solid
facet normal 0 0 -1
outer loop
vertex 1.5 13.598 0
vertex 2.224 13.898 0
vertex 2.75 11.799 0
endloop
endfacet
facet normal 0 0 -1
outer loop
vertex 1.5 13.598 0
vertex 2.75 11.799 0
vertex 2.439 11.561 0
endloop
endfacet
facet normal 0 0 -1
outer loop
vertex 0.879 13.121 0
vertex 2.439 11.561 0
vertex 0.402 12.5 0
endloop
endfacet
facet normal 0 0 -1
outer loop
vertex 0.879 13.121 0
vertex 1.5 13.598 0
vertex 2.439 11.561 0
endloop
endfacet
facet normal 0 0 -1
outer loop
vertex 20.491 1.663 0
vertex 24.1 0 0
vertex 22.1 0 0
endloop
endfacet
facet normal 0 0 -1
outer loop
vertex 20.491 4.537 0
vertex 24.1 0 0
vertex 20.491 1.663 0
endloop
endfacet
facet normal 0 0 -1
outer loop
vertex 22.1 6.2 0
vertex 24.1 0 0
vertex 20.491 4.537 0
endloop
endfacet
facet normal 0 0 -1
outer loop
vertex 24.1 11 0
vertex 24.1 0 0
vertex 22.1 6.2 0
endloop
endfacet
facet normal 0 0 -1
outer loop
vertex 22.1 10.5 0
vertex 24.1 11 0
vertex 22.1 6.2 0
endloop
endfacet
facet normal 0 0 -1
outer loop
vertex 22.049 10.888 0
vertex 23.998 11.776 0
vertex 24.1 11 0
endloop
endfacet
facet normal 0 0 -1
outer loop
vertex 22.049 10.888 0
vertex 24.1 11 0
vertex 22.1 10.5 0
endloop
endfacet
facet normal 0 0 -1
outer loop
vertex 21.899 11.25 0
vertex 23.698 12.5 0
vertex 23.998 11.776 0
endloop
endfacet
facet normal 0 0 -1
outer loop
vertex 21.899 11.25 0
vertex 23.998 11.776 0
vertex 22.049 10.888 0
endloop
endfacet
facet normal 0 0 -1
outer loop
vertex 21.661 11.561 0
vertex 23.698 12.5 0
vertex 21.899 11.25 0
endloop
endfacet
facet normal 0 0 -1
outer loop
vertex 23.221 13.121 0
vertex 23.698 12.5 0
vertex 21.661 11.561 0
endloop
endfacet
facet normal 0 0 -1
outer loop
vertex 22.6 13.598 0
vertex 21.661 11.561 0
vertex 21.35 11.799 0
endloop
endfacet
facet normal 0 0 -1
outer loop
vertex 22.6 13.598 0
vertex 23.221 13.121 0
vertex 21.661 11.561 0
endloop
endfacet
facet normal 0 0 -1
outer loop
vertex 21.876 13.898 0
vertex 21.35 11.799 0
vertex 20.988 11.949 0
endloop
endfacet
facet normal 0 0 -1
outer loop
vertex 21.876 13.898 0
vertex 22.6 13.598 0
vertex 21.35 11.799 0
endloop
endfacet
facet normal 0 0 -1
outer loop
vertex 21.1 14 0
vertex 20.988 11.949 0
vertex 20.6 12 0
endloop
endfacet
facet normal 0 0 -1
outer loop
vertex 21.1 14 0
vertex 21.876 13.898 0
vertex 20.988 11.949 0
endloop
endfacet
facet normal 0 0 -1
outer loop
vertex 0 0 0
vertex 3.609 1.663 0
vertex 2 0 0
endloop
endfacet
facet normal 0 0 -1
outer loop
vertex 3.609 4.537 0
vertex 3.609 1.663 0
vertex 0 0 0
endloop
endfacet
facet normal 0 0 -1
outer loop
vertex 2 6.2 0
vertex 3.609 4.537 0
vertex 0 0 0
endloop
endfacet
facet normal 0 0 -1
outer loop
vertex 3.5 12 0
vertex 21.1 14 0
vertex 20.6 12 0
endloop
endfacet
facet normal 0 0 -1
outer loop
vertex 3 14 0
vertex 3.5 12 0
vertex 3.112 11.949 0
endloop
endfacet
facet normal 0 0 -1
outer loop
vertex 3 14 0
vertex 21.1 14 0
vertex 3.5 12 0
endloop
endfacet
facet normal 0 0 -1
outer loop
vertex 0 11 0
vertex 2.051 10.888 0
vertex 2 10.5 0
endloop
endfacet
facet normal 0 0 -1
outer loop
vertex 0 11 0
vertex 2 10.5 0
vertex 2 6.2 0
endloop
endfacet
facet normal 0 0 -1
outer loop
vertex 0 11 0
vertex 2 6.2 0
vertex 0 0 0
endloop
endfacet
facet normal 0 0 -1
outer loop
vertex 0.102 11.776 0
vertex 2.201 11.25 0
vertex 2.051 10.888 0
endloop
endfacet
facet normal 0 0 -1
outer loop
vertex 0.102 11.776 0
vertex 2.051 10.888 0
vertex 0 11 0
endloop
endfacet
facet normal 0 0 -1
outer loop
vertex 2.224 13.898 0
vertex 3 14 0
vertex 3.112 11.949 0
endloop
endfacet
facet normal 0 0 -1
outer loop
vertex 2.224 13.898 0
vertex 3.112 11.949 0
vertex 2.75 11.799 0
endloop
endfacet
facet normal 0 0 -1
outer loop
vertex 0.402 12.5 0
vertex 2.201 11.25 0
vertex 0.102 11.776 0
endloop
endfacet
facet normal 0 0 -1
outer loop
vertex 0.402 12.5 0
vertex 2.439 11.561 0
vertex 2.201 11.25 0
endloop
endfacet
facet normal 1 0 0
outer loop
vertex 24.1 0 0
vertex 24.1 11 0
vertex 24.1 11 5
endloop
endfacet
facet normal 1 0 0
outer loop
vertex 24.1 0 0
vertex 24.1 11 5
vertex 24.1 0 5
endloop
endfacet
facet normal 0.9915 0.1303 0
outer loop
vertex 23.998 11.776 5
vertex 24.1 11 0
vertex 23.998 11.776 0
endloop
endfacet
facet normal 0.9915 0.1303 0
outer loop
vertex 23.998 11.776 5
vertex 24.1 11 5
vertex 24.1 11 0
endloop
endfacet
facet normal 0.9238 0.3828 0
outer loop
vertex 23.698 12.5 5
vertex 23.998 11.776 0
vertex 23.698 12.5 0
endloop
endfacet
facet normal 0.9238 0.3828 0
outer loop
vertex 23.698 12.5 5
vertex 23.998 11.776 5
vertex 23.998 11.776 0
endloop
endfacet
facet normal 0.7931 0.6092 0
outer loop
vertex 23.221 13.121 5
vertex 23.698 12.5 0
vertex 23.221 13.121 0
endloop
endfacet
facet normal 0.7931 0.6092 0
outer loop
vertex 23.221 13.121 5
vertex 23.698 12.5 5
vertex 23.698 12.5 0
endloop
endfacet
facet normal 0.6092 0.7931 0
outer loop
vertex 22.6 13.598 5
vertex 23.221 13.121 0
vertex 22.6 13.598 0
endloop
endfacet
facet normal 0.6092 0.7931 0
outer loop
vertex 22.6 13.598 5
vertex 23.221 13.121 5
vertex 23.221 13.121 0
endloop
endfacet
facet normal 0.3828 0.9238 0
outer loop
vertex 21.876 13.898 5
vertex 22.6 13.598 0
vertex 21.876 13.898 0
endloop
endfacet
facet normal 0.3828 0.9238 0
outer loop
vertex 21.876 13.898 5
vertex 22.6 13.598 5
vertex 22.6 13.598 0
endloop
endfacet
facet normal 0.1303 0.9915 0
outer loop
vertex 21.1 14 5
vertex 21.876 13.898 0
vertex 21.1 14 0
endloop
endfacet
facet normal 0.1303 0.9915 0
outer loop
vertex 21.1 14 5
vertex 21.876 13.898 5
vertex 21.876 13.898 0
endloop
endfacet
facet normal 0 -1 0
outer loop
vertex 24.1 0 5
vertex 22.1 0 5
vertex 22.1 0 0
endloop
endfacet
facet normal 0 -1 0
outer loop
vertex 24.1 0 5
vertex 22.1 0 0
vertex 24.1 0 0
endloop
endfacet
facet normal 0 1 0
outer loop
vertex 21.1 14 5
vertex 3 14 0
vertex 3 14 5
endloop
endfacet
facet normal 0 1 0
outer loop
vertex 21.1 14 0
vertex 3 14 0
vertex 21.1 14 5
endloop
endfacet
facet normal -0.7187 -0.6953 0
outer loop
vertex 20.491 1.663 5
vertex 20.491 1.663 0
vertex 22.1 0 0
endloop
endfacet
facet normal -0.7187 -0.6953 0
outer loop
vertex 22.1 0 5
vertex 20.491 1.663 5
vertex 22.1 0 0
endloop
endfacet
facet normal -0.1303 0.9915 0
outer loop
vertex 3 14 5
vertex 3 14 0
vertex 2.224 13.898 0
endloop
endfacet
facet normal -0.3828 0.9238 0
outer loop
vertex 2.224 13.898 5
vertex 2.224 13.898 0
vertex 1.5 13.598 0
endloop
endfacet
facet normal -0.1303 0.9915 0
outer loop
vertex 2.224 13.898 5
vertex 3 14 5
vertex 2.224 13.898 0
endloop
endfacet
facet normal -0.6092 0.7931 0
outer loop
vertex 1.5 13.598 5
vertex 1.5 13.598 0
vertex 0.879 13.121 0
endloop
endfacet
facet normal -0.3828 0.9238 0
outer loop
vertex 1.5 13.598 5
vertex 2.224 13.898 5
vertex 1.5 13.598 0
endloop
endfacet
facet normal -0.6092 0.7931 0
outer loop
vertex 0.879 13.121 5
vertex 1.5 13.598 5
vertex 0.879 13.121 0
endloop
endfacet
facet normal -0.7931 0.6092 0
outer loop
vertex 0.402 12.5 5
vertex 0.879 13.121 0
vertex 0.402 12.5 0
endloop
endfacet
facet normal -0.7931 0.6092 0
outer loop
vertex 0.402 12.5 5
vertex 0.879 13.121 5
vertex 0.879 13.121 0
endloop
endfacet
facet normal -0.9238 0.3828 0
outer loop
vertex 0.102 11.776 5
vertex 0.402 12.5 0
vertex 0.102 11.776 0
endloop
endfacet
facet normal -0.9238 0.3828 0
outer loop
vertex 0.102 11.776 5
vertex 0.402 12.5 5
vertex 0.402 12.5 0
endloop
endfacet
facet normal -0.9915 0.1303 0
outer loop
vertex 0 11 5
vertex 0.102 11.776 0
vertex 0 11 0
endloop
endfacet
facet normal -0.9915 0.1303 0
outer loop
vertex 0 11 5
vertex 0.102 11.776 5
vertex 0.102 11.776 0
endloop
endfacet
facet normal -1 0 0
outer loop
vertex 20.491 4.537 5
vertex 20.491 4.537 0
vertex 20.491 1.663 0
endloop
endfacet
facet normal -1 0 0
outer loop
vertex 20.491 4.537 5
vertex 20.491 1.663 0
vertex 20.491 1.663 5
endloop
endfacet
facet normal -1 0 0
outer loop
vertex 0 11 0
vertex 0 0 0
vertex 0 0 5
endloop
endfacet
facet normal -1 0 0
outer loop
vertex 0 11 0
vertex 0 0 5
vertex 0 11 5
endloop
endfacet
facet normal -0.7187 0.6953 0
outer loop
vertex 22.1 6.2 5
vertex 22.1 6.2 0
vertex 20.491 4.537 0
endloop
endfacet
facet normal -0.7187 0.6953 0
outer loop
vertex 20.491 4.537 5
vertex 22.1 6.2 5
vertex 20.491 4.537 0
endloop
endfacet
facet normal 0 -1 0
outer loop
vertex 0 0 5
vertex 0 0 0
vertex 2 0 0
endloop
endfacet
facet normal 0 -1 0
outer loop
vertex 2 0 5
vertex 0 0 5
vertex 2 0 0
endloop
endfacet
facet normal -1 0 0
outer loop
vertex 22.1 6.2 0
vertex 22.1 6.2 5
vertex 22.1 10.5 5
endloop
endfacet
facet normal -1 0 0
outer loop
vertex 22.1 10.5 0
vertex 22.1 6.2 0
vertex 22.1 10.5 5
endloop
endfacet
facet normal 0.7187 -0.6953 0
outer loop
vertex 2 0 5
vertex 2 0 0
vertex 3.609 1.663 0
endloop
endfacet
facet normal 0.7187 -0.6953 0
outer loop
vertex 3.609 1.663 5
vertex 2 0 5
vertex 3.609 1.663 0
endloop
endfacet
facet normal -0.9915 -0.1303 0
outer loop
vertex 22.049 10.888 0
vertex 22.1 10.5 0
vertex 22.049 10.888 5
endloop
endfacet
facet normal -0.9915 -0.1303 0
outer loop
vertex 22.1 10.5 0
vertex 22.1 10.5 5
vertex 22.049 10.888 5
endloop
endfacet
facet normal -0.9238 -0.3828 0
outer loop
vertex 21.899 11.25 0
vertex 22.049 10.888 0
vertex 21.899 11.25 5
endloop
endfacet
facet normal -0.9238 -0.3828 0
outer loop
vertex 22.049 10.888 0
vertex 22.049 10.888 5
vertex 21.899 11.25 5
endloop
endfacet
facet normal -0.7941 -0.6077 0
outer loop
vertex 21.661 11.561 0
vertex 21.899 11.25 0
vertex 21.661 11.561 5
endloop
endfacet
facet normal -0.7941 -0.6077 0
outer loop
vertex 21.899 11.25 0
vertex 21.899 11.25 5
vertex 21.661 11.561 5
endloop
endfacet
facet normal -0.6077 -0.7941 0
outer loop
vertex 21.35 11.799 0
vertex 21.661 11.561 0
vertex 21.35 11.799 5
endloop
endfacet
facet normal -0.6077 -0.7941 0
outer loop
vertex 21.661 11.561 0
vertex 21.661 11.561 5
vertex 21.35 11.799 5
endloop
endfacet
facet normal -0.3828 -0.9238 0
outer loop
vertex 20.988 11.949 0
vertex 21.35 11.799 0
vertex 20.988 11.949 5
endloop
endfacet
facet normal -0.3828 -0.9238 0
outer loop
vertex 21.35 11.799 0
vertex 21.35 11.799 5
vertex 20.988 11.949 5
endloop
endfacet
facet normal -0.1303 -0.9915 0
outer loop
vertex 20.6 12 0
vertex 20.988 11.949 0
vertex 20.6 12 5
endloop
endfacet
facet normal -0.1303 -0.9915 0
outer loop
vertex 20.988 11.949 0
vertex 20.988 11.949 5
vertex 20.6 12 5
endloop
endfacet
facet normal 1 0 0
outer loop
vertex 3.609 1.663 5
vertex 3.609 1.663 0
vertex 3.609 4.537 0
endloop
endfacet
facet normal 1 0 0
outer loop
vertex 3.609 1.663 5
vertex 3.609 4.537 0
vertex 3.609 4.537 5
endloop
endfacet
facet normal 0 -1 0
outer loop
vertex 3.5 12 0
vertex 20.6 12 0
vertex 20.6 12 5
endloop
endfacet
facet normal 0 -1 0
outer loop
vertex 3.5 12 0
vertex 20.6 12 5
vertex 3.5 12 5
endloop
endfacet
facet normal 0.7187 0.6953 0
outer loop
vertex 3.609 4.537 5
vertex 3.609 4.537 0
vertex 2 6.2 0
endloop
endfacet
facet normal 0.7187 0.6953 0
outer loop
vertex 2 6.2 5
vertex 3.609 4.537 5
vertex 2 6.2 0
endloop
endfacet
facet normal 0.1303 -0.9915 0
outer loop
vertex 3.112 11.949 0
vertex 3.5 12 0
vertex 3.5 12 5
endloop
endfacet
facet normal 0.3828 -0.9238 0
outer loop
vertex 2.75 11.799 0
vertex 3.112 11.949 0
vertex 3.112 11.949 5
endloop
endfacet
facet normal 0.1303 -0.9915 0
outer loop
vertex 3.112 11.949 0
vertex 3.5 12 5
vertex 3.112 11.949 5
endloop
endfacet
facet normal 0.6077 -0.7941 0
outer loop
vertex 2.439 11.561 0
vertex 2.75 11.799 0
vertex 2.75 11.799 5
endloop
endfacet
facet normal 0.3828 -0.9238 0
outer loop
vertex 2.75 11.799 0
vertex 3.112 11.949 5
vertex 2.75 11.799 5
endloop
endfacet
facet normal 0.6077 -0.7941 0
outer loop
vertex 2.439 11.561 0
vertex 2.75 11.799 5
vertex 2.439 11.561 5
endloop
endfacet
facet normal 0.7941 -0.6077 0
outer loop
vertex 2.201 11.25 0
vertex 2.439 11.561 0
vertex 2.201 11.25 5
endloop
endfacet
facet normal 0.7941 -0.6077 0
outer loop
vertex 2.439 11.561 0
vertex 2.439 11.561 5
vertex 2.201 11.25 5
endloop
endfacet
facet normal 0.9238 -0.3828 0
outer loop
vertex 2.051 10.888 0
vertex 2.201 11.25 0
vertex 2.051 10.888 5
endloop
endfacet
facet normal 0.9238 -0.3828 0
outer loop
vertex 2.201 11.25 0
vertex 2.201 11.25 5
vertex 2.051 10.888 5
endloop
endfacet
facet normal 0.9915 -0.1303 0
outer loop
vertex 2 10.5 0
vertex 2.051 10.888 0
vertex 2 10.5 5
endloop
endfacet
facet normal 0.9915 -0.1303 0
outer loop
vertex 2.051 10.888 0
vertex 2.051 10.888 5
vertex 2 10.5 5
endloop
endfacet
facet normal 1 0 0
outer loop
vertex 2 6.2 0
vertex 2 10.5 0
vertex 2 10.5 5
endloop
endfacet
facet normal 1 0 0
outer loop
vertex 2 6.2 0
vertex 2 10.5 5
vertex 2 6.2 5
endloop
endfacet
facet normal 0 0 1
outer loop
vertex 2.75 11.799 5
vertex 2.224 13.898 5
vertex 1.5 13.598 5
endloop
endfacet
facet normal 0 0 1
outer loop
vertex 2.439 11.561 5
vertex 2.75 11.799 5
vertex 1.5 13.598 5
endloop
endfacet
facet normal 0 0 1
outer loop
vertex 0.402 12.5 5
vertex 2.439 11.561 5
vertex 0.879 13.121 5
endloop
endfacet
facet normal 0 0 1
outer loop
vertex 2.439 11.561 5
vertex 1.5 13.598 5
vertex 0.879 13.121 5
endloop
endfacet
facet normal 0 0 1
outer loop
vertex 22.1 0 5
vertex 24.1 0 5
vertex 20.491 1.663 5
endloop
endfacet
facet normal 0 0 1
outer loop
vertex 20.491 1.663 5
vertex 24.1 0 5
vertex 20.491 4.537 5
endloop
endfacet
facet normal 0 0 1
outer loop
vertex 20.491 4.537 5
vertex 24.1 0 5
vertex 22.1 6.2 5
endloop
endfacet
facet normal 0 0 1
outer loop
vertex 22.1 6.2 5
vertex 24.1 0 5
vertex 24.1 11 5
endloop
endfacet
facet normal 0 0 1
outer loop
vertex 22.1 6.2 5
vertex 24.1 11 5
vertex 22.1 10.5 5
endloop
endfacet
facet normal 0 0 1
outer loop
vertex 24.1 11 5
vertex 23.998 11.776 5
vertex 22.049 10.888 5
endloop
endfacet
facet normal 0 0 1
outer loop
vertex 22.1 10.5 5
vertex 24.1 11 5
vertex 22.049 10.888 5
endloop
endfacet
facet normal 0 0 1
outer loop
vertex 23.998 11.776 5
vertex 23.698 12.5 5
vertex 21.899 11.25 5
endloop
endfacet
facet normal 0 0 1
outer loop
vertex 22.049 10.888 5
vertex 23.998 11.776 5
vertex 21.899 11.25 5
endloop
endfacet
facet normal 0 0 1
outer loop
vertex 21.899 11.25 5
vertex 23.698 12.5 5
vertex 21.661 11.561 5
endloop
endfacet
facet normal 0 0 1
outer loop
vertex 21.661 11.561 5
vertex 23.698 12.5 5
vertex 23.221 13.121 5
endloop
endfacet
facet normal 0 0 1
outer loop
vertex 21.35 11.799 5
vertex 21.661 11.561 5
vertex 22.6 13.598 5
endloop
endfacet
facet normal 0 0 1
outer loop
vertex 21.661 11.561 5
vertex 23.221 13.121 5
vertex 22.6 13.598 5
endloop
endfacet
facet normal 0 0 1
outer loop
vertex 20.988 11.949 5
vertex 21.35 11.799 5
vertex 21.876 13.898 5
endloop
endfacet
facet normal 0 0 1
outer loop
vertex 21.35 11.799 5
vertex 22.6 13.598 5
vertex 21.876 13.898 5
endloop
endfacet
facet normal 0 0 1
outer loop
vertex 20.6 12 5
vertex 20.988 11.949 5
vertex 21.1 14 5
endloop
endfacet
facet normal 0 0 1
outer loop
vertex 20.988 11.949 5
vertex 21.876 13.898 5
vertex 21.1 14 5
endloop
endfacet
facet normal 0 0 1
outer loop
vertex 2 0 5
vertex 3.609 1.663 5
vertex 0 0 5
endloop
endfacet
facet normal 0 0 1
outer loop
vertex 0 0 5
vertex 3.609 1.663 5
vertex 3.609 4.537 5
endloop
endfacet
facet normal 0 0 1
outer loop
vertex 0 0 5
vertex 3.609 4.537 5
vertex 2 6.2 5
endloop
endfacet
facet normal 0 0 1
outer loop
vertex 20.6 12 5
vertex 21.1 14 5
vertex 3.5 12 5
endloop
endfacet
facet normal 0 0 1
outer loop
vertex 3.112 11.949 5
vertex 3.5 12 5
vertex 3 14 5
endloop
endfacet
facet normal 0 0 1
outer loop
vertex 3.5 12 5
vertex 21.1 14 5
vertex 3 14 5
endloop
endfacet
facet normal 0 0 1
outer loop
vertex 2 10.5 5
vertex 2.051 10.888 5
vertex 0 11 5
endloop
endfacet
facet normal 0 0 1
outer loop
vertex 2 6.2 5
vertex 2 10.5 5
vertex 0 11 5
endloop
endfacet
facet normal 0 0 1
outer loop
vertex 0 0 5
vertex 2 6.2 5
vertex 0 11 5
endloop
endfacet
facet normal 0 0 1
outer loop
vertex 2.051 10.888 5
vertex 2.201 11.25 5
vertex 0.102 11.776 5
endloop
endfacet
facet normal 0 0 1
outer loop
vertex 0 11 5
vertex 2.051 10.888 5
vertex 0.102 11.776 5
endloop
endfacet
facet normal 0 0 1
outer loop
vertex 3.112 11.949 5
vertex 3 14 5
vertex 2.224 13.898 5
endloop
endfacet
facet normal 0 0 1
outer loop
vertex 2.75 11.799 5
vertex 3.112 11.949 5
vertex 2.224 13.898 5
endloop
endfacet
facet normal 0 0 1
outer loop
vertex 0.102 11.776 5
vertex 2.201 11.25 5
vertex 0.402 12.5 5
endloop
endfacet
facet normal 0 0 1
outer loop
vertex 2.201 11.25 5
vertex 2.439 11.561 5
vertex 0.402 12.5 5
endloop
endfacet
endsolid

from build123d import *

# Parameters (mm, degrees)
PAD_DEPTH    = 5
CHAMFER_SIZE = 2
FILLET_R     = 1.5
FILLET001_R  = 3


with BuildPart() as part:
    # Sketch → Pad (new body)
    with BuildSketch(Plane.XY):
        Polygon((0, 0), (0, 14), (24.1, 14), (24.1, 0), (22.1, 0), (19.1, 3.1), (22.1, 6.2), (22.1, 12), (2, 12), (2, 6.2), (5, 3.1), (2, 0), align=None)
    extrude(amount=PAD_DEPTH)

    # Chamfer
    chamfer_edges = [part.edges().sort_by_distance(p)[0] for p in [
        (5, 3.1, 2.5),
        (19.1, 3.1, 2.5),
    ]]
    chamfer(chamfer_edges, length=CHAMFER_SIZE)

    # Fillet
    fillet_edges = [part.edges().sort_by_distance(p)[0] for p in [
        (2, 12, 2.5),
        (22.1, 12, 2.5),
    ]]
    fillet(fillet_edges, radius=FILLET_R)

    # Fillet001
    fillet001_edges = [part.edges().sort_by_distance(p)[0] for p in [
        (0, 14, 2.5),
        (24.1, 14, 2.5),
    ]]
    fillet(fillet001_edges, radius=FILLET001_R)


solid = part.part
